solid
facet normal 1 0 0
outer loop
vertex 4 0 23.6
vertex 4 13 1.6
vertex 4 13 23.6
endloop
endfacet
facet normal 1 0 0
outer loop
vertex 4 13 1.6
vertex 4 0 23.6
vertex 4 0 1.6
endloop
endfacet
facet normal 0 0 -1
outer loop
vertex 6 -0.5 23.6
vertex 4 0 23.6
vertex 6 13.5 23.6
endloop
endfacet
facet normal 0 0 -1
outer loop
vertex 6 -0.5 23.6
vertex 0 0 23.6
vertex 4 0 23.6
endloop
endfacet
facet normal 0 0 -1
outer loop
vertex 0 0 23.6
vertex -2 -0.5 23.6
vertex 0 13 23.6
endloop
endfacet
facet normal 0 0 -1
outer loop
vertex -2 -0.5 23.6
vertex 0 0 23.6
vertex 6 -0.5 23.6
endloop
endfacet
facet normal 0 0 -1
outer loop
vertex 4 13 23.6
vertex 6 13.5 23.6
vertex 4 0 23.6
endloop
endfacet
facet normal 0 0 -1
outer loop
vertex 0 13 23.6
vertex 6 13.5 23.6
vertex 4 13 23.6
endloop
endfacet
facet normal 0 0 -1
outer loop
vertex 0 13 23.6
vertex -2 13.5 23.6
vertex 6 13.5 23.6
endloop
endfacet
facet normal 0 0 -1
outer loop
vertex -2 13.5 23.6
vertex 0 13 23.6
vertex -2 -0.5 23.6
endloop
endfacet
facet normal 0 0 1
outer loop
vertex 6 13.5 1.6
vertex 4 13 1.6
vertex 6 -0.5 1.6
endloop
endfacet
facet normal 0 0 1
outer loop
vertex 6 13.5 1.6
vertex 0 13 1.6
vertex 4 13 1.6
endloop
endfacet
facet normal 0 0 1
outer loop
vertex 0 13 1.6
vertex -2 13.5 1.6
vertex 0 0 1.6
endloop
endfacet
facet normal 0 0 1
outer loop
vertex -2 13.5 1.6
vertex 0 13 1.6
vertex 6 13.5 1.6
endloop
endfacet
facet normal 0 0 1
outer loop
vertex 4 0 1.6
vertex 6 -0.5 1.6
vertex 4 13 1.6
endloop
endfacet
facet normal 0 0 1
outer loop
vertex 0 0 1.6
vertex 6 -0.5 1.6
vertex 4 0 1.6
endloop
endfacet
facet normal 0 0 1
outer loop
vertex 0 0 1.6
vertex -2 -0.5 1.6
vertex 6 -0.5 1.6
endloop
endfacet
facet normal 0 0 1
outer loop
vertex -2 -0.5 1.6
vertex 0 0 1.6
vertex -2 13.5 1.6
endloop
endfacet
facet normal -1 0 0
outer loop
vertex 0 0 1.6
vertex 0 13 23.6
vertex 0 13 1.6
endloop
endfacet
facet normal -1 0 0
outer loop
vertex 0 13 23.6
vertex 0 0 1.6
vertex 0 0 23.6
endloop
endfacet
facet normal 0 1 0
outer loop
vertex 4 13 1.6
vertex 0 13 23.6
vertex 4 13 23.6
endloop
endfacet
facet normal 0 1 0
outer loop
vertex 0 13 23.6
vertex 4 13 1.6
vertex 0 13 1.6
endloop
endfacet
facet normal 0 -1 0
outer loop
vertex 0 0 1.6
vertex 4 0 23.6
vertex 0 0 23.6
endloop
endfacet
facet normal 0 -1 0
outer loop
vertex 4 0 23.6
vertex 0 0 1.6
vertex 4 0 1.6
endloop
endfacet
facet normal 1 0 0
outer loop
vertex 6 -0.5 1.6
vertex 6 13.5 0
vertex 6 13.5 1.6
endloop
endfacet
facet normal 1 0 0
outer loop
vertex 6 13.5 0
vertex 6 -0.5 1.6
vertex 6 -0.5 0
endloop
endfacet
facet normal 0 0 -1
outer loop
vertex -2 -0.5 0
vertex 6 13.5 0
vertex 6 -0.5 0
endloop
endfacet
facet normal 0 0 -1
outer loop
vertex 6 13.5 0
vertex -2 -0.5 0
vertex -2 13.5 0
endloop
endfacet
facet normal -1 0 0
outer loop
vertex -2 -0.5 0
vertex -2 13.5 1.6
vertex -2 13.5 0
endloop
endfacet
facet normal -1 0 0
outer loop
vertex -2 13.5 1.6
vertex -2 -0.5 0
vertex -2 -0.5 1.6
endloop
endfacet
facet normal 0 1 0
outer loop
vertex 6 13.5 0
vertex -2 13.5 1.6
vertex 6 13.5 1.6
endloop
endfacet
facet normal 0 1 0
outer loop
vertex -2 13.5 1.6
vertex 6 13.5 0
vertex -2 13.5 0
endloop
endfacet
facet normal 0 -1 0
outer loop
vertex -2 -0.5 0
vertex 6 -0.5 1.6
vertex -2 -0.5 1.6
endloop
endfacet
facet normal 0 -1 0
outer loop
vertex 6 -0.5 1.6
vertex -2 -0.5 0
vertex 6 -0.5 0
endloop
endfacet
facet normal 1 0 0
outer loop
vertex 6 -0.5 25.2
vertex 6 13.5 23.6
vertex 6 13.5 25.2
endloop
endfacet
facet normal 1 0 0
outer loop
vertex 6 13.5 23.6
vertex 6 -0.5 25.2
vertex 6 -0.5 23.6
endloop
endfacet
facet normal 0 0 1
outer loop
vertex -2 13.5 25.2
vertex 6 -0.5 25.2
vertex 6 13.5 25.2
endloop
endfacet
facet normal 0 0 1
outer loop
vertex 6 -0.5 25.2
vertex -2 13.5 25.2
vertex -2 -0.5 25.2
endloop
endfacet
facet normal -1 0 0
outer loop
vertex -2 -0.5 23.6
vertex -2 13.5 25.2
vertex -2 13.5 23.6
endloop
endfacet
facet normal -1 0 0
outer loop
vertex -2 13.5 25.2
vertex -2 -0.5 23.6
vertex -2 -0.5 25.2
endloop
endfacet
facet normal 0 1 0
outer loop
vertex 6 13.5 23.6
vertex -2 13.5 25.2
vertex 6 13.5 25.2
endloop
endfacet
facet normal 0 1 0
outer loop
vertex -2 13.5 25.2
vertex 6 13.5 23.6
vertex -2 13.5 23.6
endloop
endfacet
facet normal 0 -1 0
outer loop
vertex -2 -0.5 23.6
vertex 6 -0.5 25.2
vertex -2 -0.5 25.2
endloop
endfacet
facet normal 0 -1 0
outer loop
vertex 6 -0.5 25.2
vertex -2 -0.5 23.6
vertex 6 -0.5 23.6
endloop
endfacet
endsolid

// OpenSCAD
// Gen-D radial bobbin — fits stator slot; wind then insert (or wind in place)
// Window sized for ~26 AWG or 30 AWG

body_w          = 12.5;       // fits slot_width 14 with clearance
body_d          = 14.0;       // radial depth
body_h          = 22.0;       // axial stack height
flange_t        = 1.6;
flange_overhang = 2.0;
core_w          = 4.0;        // winding core width
bore_d          = 0;          // solid core (no through-hole)

$fn = 48;

module bobbin() {
    // core
    translate([0, 0, flange_t])
        cube([core_w, body_d - 1, body_h], center=false);
    // bottom flange
    translate([-flange_overhang, -0.5, 0])
        cube([core_w + 2*flange_overhang, body_d, flange_t]);
    // top flange
    translate([-flange_overhang, -0.5, flange_t + body_h])
        cube([core_w + 2*flange_overhang, body_d, flange_t]);
}

bobbin();
